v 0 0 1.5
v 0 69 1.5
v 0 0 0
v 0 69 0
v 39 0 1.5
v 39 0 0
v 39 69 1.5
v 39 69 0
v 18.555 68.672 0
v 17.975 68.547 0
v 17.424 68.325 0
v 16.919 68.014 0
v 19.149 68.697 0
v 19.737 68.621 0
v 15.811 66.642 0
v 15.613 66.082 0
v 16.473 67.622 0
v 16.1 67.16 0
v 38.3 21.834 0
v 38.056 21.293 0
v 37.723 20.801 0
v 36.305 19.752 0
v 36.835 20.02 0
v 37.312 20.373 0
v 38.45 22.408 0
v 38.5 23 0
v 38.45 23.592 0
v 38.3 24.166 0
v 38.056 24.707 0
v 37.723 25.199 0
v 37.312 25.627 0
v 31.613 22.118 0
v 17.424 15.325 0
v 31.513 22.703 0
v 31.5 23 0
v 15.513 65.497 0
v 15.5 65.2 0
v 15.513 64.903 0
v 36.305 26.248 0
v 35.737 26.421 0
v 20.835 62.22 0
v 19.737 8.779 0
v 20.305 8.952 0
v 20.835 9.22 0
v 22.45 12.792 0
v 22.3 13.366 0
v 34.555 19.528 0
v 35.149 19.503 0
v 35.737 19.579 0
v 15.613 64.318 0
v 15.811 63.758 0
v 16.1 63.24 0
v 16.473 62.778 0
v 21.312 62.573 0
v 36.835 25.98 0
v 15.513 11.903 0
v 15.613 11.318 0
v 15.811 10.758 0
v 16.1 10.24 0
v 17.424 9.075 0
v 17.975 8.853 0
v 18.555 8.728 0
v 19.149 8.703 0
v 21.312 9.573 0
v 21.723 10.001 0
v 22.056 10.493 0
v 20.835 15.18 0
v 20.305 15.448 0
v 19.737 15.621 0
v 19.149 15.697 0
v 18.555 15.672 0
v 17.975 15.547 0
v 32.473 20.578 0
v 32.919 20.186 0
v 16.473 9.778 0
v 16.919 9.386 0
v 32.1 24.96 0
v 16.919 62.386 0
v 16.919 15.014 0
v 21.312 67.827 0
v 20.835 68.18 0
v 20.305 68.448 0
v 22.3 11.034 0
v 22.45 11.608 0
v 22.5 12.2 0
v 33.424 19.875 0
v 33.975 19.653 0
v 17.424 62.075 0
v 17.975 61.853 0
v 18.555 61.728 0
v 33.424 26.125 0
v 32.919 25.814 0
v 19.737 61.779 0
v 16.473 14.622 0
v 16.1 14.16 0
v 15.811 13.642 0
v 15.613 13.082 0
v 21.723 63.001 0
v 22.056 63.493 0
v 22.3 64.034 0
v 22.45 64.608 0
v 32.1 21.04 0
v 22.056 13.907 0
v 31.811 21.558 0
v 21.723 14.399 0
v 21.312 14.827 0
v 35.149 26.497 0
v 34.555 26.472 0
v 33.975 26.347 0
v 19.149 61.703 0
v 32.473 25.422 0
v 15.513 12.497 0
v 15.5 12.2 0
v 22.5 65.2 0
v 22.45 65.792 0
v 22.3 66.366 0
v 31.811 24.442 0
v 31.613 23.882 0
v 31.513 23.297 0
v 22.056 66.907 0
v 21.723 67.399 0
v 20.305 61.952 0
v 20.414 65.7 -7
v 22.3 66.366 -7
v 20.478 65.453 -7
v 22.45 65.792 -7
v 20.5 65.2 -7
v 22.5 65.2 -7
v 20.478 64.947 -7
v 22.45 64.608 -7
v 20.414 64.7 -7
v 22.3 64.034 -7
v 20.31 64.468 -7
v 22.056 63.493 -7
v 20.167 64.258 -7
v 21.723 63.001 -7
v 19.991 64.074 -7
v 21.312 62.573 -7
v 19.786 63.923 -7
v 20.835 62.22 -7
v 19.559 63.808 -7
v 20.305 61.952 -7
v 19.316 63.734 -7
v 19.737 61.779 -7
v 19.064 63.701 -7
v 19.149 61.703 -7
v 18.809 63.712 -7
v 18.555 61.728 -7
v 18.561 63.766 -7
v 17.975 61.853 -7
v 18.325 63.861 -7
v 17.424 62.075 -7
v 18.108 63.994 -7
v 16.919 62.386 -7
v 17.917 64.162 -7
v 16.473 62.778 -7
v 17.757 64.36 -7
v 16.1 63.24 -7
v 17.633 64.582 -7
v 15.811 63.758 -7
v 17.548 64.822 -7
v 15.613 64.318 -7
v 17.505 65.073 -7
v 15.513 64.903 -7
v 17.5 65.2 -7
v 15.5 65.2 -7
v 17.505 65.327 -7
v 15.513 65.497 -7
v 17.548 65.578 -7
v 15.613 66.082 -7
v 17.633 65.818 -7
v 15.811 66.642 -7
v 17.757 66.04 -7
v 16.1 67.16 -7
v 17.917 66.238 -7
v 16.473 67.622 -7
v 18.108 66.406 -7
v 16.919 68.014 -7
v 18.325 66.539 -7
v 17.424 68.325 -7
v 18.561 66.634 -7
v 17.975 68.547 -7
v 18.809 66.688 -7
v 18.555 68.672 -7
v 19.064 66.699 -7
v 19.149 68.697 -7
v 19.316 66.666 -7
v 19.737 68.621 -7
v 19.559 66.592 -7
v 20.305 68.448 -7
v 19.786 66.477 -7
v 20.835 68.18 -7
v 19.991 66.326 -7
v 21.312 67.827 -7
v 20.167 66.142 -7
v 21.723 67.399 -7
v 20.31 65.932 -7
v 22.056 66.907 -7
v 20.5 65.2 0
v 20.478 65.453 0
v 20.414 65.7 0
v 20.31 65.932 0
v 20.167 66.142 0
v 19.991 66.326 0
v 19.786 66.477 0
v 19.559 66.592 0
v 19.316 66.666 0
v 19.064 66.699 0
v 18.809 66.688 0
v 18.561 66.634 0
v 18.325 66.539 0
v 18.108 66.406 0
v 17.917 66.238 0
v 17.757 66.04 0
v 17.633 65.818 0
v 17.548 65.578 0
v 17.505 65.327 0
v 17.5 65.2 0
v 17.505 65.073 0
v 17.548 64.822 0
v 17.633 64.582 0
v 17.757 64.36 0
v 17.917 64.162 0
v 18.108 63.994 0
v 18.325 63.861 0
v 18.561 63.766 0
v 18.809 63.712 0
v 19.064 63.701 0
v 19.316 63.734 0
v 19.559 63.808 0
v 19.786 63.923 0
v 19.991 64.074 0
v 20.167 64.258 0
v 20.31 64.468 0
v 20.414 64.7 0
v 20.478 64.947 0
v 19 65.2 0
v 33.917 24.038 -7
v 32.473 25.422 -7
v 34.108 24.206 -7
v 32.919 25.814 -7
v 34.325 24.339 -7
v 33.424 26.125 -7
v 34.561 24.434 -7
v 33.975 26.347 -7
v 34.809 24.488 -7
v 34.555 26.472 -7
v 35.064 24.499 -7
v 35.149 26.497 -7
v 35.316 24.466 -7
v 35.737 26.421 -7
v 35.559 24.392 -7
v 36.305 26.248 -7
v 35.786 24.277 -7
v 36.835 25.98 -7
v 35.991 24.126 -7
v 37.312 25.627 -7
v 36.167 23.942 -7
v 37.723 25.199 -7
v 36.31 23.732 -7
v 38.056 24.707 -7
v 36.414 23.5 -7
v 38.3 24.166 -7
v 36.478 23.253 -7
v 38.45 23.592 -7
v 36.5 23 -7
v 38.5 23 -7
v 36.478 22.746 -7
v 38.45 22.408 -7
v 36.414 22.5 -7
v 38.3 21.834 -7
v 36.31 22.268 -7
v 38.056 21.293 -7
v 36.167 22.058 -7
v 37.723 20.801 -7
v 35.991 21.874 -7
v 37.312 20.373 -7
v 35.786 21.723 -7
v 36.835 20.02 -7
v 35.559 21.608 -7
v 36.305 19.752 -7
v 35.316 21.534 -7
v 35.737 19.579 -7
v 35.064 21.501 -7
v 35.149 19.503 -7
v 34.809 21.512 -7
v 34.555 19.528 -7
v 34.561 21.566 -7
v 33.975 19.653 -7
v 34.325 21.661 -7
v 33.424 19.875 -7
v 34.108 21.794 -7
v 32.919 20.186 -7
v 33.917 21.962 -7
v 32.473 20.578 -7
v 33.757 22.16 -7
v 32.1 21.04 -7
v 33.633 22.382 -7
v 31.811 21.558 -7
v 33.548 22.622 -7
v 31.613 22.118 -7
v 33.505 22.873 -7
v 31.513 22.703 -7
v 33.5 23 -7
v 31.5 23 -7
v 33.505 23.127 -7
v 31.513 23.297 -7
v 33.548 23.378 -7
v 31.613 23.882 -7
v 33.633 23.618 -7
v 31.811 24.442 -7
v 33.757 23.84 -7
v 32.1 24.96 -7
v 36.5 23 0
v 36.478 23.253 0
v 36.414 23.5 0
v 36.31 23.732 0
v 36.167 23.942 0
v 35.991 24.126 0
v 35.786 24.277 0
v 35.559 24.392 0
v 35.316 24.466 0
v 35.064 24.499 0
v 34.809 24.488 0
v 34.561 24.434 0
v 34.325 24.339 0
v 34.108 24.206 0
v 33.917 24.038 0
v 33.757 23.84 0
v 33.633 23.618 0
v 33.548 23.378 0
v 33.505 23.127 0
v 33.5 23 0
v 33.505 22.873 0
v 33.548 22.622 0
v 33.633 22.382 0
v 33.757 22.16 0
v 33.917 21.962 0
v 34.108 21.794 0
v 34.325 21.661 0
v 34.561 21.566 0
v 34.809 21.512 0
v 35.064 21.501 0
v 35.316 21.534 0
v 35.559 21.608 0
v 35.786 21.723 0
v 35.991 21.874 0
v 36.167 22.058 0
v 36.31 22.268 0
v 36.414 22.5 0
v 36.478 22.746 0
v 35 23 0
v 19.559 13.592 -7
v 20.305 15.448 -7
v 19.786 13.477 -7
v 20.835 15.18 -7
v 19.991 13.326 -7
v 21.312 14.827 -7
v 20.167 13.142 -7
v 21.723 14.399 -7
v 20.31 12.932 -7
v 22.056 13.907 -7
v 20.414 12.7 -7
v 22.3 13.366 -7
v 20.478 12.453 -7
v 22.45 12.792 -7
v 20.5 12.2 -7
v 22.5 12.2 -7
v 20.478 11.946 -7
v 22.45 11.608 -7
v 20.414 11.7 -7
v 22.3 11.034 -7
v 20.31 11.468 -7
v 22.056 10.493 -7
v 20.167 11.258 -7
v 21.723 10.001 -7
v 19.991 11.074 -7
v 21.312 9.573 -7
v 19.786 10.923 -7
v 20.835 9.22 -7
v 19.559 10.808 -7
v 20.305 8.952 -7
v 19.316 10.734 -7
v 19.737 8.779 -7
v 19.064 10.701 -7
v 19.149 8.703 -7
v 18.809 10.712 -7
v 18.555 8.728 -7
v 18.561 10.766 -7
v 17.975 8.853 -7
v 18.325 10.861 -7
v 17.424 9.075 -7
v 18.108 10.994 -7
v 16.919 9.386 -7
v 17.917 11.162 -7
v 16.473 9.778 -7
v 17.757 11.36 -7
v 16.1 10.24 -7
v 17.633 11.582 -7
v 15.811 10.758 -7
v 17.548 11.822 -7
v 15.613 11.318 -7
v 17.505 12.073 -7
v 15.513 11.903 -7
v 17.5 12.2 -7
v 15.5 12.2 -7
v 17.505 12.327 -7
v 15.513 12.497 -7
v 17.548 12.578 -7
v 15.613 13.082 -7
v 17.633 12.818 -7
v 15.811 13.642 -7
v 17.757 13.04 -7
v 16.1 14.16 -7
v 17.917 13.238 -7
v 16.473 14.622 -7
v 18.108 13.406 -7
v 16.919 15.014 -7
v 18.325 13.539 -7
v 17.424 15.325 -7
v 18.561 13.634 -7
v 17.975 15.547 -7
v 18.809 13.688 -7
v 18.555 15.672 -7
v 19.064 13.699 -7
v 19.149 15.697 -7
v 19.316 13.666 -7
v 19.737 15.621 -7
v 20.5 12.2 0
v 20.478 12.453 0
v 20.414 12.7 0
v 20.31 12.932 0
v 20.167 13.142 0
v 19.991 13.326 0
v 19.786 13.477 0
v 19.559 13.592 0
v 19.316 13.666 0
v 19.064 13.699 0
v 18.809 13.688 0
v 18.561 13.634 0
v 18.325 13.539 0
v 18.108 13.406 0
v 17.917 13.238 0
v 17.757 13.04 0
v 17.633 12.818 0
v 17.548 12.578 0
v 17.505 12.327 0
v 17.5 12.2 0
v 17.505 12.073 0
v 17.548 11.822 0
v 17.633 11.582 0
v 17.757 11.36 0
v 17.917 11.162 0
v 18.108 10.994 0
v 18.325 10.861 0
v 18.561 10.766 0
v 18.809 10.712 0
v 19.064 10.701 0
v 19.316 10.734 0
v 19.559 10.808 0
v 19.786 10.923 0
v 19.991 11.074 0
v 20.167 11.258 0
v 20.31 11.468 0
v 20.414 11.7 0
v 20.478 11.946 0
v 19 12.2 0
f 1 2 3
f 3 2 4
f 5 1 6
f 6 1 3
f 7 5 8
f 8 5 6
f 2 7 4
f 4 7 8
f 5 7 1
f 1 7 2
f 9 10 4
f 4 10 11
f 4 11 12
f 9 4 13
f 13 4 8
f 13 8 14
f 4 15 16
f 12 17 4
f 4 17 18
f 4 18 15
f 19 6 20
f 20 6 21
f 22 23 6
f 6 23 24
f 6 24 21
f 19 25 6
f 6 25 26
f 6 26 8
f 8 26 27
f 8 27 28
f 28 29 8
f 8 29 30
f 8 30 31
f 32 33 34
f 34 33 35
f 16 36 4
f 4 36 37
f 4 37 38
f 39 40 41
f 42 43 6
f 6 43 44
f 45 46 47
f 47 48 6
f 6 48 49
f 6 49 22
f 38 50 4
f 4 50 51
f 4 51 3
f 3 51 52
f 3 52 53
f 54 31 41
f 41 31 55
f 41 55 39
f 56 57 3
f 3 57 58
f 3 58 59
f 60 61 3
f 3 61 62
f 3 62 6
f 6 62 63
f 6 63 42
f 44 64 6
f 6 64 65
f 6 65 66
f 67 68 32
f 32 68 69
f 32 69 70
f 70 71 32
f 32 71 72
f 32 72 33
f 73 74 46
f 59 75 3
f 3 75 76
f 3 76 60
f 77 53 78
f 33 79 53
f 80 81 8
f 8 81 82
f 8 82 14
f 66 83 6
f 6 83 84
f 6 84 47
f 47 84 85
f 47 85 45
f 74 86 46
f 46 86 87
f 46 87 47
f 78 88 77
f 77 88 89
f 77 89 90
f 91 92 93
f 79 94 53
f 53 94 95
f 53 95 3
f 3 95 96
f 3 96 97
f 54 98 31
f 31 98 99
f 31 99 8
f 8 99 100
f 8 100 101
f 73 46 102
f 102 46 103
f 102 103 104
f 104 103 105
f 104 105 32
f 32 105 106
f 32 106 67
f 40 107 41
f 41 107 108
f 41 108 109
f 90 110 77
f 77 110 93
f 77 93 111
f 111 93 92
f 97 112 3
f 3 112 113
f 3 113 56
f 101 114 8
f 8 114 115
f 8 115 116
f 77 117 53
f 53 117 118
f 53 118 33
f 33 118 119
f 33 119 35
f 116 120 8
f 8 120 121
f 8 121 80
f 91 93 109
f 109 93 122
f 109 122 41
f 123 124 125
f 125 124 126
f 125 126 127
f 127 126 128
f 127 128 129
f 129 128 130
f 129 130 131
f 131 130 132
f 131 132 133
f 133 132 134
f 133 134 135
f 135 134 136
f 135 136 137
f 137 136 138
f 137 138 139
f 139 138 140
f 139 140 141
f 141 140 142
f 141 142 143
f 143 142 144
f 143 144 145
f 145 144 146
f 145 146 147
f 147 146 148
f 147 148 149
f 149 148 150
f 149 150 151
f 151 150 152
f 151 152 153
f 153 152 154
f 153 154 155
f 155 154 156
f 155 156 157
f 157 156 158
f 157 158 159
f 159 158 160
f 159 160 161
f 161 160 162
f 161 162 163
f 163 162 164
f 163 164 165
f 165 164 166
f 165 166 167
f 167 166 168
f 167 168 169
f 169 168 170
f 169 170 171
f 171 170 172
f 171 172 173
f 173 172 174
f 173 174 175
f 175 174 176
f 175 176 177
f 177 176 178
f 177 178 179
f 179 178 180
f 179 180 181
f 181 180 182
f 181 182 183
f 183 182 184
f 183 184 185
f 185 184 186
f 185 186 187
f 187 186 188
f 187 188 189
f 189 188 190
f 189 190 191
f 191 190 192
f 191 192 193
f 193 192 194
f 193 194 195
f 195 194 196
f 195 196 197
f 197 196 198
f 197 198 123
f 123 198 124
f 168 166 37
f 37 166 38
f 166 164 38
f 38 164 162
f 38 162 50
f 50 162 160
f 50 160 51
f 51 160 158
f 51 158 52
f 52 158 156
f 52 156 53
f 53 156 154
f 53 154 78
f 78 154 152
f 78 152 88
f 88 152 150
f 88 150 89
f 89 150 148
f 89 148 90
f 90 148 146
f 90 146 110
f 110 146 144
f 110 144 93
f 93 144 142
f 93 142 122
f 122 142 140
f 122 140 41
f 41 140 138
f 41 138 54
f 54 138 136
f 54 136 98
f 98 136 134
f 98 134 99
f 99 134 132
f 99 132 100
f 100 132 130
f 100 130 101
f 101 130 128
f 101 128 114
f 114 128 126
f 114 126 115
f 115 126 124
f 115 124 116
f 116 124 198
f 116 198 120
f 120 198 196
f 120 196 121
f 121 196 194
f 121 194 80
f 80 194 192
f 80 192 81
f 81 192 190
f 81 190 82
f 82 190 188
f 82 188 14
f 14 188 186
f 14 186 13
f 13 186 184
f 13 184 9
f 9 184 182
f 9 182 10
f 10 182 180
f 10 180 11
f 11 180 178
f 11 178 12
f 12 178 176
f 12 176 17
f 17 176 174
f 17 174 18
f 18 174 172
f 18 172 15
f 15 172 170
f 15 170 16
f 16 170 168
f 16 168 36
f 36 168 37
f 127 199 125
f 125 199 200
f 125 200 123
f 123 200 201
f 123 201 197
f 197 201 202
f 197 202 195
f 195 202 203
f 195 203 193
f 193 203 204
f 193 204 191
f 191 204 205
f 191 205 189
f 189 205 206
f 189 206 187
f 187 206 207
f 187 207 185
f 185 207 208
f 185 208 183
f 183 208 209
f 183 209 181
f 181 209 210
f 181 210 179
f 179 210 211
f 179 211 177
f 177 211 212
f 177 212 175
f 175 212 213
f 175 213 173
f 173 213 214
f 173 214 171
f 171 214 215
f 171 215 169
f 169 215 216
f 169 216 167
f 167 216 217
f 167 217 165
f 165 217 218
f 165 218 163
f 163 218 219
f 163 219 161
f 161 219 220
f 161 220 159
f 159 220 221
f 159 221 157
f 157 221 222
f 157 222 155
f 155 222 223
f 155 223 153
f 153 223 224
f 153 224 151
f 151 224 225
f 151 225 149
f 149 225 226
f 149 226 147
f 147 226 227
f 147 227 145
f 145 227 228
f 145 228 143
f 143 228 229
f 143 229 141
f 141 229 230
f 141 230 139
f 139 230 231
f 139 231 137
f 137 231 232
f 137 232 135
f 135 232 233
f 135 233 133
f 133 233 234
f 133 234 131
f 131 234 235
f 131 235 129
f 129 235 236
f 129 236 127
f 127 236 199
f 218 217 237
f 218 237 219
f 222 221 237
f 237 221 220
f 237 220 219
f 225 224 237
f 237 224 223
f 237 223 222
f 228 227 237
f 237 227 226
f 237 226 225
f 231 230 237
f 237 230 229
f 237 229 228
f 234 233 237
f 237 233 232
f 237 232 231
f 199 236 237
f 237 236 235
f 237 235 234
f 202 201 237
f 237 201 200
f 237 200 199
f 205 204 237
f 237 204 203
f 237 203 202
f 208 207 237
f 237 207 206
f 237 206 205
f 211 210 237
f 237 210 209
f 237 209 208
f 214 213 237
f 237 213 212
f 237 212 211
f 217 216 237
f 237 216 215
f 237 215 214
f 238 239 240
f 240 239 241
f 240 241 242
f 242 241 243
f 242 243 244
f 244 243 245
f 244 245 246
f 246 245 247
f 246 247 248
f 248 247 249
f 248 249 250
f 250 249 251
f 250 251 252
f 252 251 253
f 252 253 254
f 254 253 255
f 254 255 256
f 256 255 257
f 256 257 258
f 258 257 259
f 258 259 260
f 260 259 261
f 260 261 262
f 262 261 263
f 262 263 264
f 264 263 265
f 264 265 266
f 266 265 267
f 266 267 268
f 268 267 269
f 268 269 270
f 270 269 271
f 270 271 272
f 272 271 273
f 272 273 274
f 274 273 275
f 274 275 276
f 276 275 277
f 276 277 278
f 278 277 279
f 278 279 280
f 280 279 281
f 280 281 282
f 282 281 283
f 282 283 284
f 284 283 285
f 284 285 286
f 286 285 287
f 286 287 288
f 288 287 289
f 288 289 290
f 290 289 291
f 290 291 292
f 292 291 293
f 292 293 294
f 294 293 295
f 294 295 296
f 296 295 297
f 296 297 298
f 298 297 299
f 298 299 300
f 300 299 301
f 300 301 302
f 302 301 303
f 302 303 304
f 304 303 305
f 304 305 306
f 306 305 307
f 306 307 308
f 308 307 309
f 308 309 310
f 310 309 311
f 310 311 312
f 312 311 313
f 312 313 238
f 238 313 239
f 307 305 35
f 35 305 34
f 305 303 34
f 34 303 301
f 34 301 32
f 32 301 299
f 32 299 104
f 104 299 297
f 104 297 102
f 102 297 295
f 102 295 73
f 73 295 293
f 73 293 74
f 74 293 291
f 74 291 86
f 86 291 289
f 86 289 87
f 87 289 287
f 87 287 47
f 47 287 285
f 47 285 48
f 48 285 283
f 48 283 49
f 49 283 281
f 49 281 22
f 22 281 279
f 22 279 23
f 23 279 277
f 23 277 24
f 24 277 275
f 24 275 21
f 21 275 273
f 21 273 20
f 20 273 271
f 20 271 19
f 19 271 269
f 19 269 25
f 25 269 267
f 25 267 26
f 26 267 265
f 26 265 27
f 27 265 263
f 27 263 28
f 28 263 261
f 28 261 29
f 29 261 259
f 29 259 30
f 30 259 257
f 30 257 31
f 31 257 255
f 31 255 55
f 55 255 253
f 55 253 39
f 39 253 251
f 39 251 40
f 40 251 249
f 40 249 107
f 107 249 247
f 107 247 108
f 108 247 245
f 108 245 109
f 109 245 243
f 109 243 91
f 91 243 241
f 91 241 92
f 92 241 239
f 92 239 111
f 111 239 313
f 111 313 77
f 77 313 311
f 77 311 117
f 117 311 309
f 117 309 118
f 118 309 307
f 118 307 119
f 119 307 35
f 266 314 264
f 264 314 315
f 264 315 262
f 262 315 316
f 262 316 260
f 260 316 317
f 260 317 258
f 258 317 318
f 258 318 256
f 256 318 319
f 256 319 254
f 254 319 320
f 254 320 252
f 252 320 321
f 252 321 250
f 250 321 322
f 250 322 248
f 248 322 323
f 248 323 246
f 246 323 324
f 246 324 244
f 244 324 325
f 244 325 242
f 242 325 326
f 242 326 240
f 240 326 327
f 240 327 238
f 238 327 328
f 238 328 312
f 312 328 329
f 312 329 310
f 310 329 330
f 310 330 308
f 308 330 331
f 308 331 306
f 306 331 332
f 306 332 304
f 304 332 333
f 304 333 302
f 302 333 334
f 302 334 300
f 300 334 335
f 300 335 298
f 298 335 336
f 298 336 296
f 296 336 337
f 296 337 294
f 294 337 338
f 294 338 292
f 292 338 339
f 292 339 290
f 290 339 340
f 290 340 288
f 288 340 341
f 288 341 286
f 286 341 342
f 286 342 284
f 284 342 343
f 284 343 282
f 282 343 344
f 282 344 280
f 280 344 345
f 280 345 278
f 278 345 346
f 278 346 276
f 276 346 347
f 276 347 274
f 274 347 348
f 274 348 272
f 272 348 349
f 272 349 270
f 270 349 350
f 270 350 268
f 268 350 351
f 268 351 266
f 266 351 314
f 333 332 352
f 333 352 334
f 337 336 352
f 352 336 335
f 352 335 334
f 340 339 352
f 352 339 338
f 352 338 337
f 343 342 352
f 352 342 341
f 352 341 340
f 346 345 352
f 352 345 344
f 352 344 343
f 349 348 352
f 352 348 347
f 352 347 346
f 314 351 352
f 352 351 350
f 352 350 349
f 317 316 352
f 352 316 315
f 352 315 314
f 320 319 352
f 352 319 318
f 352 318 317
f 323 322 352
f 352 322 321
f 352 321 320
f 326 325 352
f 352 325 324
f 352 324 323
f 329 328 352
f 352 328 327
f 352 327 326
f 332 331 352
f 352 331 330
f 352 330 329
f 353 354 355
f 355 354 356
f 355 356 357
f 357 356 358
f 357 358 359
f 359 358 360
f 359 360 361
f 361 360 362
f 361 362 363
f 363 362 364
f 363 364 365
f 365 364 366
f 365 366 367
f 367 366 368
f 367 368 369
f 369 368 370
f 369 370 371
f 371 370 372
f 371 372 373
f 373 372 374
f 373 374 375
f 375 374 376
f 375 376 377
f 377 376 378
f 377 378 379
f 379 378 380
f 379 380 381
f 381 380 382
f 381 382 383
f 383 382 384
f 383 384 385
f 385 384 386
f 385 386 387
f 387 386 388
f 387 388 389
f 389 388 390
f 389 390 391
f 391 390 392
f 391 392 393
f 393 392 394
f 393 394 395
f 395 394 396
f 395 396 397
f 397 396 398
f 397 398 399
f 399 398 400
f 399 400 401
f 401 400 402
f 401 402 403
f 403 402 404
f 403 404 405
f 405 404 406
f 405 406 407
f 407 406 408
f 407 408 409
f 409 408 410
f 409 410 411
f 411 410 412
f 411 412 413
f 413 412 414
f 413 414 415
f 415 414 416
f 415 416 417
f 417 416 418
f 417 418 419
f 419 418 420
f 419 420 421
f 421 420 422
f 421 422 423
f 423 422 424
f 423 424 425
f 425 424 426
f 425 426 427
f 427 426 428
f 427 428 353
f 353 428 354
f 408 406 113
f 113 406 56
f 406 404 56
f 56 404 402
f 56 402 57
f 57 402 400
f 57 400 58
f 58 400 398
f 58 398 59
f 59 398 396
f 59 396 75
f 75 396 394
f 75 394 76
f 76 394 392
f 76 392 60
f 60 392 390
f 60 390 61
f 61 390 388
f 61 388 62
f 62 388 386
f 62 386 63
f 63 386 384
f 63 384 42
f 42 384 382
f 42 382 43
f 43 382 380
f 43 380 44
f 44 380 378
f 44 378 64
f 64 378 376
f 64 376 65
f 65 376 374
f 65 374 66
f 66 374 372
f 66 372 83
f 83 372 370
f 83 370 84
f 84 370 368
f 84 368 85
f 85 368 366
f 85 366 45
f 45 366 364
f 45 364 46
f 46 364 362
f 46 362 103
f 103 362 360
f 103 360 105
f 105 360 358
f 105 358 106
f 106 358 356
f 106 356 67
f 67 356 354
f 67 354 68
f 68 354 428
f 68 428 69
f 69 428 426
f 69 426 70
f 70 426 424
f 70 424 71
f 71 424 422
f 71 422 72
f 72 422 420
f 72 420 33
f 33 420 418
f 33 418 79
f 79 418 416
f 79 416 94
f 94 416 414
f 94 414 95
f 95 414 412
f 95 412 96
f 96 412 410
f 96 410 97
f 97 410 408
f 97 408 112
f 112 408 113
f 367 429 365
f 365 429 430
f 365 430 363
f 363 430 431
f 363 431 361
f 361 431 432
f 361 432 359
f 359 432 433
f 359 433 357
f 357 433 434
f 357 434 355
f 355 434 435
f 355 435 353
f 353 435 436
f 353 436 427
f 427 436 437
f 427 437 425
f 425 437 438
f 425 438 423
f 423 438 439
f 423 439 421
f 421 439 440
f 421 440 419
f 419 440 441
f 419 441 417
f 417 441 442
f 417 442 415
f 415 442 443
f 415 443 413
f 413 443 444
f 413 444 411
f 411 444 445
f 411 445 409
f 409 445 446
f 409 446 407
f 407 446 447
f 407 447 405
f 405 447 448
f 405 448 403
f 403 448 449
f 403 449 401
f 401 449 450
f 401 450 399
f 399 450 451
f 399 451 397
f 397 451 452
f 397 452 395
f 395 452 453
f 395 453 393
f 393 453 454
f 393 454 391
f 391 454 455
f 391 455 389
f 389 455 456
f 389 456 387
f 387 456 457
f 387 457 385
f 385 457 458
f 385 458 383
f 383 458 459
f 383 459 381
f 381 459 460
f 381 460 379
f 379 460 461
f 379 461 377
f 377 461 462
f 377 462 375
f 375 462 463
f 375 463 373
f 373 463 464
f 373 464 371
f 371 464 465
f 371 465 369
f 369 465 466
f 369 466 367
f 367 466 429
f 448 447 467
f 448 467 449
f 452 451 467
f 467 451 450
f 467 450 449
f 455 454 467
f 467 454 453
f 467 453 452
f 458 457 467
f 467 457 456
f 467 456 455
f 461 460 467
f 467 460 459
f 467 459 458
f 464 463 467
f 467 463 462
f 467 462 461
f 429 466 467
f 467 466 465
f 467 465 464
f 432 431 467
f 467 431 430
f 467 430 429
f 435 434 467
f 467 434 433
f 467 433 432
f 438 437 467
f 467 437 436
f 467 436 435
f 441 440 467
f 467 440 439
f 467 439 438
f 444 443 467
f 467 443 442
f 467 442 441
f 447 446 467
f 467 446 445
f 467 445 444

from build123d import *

# Parameters (mm, degrees)
SKETCH_1_W      = 39
SKETCH_1_H      = 69
EXTRUDE_1_DEPTH = 1.5
SKETCH_2_R      = 3.5
SKETCH_2_R_2    = 1.5
EXTRUDE_2_DEPTH = 7


with BuildPart() as part:
    # Эскиз1 → Бобышка-Вытянуть1 (new body)
    with BuildSketch(Plane.XY):
        with Locations((19.5, 34.5)):
            Rectangle(SKETCH_1_W, SKETCH_1_H)
    extrude(amount=EXTRUDE_1_DEPTH)

    # Эскиз2 → Бобышка-Вытянуть2 (add)
    # profile 1 of 3: a face of its own
    with BuildSketch(Plane(origin=(0, 0, 0), x_dir=(-1, 0, 0), z_dir=(0, 0, -1))):
        with Locations((-19, 65.2)):
            Circle(SKETCH_2_R)
        with Locations((-19, 65.2)):
            Circle(SKETCH_2_R_2, mode=Mode.SUBTRACT)
    # profile 2 of 3: a face of its own
    with BuildSketch(Plane(origin=(0, 0, 0), x_dir=(-1, 0, 0), z_dir=(0, 0, -1))):
        with Locations((-35, 23)):
            Circle(SKETCH_2_R)
        with Locations((-35, 23)):
            Circle(SKETCH_2_R_2, mode=Mode.SUBTRACT)
    # profile 3 of 3: a face of its own
    with BuildSketch(Plane(origin=(0, 0, 0), x_dir=(-1, 0, 0), z_dir=(0, 0, -1))):
        with Locations((-19, 12.2)):
            Circle(SKETCH_2_R)
        with Locations((-19, 12.2)):
            Circle(SKETCH_2_R_2, mode=Mode.SUBTRACT)
    extrude(amount=EXTRUDE_2_DEPTH)


solid = part.part
